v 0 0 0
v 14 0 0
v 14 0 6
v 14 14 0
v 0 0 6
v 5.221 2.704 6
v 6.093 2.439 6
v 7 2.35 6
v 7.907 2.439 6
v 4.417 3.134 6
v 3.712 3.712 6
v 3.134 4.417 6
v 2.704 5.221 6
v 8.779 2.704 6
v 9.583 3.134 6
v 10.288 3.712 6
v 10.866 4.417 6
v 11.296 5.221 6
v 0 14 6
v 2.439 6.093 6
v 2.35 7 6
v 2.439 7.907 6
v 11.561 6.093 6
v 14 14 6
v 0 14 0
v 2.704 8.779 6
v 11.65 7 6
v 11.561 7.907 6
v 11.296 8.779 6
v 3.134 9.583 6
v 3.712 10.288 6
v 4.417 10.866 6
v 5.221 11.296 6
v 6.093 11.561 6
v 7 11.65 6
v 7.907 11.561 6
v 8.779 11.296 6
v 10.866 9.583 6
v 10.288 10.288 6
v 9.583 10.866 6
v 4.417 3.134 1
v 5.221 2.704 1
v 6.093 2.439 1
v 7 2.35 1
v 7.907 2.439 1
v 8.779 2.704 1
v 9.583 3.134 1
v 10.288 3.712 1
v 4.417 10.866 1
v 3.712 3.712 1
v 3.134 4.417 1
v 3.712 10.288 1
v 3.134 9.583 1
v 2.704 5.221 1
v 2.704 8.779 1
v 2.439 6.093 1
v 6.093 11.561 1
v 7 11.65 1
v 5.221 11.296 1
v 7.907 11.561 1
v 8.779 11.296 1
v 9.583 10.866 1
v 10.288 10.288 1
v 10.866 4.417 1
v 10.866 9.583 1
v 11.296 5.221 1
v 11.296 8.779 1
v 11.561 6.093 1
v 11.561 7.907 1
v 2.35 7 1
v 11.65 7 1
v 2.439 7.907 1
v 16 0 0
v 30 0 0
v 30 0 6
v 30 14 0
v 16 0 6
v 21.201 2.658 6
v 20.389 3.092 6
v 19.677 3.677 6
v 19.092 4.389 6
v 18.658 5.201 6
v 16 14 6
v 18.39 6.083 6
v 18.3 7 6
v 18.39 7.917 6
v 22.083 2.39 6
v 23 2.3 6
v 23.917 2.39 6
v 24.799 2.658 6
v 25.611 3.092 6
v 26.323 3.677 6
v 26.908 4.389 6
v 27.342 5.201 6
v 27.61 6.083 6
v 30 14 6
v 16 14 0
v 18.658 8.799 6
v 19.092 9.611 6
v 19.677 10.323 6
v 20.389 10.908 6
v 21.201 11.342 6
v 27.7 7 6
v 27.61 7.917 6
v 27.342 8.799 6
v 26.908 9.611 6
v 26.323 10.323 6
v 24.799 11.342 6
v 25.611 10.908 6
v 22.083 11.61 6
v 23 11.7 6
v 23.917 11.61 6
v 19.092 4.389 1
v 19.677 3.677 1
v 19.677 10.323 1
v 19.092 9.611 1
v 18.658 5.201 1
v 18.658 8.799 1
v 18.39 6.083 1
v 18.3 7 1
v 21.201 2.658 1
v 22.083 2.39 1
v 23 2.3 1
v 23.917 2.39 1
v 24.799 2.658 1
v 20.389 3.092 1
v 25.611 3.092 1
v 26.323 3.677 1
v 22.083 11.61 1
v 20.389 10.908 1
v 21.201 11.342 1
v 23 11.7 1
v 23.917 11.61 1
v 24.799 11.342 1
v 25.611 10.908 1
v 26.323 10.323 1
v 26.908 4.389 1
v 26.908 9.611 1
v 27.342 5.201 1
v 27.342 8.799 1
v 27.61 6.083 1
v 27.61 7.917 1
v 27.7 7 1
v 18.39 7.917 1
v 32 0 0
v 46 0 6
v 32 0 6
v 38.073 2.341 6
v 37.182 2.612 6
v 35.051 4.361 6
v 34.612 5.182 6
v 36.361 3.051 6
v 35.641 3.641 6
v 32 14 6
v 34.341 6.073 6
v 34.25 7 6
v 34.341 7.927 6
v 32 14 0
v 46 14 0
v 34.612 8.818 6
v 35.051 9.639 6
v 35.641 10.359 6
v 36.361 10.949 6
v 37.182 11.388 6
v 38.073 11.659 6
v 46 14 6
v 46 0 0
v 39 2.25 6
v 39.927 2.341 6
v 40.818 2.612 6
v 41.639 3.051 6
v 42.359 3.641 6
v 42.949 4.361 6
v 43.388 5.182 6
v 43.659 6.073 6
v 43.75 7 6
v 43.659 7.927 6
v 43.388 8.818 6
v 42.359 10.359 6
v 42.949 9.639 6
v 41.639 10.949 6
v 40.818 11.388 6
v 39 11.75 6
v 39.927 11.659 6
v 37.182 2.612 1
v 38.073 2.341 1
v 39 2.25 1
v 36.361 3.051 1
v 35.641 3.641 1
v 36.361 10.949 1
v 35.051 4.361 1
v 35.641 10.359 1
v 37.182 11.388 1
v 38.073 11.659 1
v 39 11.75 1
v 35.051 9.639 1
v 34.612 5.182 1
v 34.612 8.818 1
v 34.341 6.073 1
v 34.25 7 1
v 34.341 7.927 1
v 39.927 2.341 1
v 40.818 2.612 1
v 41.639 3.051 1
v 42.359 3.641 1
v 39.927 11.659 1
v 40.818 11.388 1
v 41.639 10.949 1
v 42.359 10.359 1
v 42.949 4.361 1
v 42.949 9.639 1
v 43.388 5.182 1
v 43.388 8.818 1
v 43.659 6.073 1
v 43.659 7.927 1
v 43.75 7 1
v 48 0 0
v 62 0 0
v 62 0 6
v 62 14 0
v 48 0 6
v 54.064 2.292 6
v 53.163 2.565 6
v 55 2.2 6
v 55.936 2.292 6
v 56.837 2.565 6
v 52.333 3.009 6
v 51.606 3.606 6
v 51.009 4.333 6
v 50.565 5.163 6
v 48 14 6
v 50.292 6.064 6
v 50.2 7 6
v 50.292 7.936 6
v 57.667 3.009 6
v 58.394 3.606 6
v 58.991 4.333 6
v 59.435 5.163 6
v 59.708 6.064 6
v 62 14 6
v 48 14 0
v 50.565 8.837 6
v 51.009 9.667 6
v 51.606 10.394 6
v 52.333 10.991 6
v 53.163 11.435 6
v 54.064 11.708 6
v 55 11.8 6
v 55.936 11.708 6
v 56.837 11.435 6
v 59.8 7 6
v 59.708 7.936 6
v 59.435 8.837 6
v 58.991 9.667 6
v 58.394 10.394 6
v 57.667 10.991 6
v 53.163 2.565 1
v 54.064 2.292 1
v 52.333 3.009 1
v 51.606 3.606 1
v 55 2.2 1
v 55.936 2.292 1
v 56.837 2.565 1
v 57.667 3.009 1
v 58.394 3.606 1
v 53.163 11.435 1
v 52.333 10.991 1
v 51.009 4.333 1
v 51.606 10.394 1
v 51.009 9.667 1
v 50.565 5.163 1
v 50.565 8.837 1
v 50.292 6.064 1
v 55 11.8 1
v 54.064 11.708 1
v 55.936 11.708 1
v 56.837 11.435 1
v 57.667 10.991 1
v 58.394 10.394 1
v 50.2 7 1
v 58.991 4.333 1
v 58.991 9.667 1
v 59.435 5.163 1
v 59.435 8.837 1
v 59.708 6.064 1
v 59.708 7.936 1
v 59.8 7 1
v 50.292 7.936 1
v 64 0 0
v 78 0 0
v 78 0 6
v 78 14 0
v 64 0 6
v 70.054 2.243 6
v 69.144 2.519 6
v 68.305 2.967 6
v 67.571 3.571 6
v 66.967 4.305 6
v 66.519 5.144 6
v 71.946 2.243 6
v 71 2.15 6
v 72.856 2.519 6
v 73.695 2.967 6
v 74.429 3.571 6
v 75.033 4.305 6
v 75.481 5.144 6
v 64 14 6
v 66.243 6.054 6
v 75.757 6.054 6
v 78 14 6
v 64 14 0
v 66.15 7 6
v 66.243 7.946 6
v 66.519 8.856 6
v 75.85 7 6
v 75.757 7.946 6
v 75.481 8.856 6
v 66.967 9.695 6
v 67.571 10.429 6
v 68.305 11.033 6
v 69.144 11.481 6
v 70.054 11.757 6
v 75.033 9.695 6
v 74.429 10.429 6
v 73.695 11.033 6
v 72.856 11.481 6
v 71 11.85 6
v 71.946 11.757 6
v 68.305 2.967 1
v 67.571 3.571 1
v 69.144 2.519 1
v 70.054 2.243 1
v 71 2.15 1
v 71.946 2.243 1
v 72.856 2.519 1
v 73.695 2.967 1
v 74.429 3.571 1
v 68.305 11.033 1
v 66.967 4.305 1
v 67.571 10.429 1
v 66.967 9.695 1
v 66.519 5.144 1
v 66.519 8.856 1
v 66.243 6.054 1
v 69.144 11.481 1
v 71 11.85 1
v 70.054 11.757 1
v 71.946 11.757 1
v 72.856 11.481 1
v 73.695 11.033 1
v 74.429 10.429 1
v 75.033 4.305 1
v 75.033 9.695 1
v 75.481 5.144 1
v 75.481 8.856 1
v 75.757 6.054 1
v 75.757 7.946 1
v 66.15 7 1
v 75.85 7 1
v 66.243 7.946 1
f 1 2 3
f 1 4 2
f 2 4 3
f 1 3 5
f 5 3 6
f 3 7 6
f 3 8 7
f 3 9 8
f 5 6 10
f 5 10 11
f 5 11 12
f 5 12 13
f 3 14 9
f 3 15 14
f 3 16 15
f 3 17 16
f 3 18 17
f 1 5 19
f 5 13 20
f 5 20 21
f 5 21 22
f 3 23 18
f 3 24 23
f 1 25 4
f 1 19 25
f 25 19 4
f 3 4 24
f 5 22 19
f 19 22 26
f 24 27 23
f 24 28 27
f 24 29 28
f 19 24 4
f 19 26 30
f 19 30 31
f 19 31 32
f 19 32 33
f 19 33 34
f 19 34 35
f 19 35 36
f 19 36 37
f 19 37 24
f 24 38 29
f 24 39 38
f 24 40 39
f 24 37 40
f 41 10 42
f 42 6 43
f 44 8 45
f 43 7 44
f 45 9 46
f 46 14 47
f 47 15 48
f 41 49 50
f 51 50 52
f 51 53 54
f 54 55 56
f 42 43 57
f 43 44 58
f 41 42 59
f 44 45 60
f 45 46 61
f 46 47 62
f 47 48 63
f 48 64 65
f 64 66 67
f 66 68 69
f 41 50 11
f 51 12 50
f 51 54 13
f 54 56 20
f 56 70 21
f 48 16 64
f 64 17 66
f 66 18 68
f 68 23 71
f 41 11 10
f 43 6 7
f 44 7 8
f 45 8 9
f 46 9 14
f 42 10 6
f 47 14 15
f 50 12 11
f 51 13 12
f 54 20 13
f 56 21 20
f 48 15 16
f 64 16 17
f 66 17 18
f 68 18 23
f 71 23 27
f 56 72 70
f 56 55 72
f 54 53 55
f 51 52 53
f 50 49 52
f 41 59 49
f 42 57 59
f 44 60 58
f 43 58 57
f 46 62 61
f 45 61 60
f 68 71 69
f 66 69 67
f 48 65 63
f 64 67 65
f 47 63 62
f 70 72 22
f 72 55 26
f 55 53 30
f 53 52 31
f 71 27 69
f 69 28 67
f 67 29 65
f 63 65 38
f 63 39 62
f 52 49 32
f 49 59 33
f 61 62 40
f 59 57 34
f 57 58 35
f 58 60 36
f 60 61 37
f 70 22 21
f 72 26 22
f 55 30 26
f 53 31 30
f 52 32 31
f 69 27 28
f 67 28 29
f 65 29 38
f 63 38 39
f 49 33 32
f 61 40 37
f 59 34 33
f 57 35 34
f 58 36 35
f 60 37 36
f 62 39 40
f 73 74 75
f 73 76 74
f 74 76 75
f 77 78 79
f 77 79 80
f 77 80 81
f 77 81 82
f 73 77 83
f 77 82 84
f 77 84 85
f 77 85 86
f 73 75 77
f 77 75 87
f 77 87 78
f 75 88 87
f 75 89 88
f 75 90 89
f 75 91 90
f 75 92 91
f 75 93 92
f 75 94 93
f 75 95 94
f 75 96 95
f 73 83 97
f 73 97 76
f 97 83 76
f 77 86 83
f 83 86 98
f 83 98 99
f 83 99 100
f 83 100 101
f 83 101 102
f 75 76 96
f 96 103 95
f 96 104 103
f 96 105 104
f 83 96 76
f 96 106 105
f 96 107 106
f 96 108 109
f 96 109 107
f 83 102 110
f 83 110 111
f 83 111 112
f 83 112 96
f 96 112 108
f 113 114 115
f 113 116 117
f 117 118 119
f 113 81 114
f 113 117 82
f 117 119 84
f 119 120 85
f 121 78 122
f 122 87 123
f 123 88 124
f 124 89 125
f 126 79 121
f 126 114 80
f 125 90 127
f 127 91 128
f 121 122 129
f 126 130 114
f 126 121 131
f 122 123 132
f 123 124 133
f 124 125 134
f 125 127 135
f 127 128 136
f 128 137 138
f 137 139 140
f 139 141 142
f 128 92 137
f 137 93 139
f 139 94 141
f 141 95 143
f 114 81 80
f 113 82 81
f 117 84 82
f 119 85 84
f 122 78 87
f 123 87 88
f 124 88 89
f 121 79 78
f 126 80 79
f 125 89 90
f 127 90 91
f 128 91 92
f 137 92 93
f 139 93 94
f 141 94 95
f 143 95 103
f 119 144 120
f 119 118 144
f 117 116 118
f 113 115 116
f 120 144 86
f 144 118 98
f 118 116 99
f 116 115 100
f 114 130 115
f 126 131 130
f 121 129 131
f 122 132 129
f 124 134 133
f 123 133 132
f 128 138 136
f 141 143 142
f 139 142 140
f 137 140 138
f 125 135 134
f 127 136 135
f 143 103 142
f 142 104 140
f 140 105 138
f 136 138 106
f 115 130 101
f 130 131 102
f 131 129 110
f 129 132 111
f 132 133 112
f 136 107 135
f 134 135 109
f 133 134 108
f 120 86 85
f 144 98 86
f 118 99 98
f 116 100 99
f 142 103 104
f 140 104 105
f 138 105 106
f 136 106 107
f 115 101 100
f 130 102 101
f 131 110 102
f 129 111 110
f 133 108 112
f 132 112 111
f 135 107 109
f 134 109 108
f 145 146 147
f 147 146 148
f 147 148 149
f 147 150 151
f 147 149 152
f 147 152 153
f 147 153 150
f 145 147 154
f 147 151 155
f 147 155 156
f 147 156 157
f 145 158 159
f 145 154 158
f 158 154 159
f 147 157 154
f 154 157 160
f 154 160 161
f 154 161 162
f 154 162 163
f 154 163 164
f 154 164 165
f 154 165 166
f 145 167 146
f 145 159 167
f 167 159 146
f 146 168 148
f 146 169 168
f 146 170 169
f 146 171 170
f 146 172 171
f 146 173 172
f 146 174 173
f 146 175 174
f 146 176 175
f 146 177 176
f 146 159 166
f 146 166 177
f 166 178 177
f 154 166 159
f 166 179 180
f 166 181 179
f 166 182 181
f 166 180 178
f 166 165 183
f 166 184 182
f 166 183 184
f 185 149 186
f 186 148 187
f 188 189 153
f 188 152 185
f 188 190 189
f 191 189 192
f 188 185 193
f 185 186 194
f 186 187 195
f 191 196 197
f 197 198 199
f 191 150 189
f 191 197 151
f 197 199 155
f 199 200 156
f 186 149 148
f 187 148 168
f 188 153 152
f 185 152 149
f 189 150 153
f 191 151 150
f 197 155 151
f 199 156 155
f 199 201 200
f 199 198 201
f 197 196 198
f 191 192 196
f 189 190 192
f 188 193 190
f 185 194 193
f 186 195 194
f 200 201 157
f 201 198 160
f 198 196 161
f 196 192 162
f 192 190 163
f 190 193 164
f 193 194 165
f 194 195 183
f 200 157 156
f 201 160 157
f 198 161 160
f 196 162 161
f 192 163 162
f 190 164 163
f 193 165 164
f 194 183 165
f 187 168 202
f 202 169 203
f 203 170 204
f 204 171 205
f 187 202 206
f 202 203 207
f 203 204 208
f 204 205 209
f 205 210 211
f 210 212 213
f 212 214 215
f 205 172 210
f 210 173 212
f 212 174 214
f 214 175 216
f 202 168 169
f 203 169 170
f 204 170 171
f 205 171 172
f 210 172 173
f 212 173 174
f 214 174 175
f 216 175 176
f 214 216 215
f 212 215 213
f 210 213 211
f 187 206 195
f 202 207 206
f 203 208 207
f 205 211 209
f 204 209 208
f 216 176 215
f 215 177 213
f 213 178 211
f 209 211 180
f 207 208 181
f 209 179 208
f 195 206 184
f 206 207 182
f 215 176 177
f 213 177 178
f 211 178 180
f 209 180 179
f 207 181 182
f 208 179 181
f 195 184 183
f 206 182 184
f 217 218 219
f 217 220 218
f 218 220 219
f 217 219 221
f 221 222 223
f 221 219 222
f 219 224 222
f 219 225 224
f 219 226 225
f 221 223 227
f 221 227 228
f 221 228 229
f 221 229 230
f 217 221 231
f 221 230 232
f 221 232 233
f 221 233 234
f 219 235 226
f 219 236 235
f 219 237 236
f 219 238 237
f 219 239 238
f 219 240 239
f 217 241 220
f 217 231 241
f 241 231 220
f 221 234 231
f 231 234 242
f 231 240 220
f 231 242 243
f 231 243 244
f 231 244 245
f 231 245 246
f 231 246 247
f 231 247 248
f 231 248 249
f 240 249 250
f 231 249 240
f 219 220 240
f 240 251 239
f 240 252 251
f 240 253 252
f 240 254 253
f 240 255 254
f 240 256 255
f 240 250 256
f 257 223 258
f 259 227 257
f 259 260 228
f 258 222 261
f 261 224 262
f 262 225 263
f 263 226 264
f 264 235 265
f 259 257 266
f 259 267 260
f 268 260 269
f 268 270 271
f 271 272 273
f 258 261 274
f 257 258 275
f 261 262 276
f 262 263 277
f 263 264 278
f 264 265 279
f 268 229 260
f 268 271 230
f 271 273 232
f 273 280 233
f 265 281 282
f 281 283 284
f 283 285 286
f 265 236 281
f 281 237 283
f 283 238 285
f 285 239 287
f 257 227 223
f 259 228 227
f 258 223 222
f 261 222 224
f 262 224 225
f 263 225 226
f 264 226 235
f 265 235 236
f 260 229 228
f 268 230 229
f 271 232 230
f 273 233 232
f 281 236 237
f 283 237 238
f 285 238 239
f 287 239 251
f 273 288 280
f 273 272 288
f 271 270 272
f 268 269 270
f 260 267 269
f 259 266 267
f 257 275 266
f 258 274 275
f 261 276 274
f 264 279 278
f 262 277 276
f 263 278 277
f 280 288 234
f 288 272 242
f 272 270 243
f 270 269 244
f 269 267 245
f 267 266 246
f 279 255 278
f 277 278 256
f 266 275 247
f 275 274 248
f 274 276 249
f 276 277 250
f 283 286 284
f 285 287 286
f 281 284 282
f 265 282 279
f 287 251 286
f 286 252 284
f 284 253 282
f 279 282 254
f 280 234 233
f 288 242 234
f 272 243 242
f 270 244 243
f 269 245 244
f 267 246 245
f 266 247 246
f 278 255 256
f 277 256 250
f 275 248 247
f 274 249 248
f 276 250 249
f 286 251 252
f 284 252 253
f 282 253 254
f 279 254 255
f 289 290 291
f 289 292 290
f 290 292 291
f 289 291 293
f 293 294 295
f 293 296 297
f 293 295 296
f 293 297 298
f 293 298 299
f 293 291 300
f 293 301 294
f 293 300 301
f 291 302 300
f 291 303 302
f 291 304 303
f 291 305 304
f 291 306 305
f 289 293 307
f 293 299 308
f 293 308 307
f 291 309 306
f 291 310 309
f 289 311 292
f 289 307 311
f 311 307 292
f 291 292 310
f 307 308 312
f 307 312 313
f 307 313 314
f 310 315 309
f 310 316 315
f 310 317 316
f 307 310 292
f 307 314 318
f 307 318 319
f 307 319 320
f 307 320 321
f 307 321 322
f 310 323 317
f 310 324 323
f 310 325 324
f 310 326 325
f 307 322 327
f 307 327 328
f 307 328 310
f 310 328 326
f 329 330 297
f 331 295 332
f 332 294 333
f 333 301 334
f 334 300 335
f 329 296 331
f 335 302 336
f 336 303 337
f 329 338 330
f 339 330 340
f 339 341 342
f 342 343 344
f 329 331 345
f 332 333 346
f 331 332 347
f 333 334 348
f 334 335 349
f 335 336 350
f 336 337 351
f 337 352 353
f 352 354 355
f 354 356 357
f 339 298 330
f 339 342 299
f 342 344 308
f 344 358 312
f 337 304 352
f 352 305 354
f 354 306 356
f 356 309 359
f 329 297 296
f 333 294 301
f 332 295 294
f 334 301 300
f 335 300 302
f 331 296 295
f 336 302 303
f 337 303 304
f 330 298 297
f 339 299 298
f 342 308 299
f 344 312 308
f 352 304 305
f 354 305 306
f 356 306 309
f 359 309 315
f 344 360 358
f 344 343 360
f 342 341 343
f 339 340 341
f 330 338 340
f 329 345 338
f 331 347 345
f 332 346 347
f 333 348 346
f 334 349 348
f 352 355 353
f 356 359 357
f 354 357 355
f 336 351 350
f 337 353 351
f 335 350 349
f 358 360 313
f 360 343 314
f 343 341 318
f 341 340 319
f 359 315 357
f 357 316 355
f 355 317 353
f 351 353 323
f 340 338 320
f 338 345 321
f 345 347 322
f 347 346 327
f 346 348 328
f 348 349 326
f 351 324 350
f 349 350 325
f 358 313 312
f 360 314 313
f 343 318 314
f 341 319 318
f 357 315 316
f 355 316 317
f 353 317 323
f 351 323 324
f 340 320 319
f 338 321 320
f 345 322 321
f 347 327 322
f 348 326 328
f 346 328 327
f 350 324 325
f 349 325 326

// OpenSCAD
// Calibration piece: one bar, five stud sockets at clearances from
// nominal -0.2 mm to +0.2 mm in 0.1 mm steps. Print first, find which
// socket snaps on your printer, set that offset. See docs/snap.md.
nominal = 9.5;
for (i = [0 : 4]) {
  offset = -0.2 + i * 0.1;
  translate([i * 16, 0, 0])
    difference() {
      cube([14, 14, 6]);
      translate([7, 7, 1]) cylinder(d = nominal + offset, h = 6, $fn = 32);
    }
}
